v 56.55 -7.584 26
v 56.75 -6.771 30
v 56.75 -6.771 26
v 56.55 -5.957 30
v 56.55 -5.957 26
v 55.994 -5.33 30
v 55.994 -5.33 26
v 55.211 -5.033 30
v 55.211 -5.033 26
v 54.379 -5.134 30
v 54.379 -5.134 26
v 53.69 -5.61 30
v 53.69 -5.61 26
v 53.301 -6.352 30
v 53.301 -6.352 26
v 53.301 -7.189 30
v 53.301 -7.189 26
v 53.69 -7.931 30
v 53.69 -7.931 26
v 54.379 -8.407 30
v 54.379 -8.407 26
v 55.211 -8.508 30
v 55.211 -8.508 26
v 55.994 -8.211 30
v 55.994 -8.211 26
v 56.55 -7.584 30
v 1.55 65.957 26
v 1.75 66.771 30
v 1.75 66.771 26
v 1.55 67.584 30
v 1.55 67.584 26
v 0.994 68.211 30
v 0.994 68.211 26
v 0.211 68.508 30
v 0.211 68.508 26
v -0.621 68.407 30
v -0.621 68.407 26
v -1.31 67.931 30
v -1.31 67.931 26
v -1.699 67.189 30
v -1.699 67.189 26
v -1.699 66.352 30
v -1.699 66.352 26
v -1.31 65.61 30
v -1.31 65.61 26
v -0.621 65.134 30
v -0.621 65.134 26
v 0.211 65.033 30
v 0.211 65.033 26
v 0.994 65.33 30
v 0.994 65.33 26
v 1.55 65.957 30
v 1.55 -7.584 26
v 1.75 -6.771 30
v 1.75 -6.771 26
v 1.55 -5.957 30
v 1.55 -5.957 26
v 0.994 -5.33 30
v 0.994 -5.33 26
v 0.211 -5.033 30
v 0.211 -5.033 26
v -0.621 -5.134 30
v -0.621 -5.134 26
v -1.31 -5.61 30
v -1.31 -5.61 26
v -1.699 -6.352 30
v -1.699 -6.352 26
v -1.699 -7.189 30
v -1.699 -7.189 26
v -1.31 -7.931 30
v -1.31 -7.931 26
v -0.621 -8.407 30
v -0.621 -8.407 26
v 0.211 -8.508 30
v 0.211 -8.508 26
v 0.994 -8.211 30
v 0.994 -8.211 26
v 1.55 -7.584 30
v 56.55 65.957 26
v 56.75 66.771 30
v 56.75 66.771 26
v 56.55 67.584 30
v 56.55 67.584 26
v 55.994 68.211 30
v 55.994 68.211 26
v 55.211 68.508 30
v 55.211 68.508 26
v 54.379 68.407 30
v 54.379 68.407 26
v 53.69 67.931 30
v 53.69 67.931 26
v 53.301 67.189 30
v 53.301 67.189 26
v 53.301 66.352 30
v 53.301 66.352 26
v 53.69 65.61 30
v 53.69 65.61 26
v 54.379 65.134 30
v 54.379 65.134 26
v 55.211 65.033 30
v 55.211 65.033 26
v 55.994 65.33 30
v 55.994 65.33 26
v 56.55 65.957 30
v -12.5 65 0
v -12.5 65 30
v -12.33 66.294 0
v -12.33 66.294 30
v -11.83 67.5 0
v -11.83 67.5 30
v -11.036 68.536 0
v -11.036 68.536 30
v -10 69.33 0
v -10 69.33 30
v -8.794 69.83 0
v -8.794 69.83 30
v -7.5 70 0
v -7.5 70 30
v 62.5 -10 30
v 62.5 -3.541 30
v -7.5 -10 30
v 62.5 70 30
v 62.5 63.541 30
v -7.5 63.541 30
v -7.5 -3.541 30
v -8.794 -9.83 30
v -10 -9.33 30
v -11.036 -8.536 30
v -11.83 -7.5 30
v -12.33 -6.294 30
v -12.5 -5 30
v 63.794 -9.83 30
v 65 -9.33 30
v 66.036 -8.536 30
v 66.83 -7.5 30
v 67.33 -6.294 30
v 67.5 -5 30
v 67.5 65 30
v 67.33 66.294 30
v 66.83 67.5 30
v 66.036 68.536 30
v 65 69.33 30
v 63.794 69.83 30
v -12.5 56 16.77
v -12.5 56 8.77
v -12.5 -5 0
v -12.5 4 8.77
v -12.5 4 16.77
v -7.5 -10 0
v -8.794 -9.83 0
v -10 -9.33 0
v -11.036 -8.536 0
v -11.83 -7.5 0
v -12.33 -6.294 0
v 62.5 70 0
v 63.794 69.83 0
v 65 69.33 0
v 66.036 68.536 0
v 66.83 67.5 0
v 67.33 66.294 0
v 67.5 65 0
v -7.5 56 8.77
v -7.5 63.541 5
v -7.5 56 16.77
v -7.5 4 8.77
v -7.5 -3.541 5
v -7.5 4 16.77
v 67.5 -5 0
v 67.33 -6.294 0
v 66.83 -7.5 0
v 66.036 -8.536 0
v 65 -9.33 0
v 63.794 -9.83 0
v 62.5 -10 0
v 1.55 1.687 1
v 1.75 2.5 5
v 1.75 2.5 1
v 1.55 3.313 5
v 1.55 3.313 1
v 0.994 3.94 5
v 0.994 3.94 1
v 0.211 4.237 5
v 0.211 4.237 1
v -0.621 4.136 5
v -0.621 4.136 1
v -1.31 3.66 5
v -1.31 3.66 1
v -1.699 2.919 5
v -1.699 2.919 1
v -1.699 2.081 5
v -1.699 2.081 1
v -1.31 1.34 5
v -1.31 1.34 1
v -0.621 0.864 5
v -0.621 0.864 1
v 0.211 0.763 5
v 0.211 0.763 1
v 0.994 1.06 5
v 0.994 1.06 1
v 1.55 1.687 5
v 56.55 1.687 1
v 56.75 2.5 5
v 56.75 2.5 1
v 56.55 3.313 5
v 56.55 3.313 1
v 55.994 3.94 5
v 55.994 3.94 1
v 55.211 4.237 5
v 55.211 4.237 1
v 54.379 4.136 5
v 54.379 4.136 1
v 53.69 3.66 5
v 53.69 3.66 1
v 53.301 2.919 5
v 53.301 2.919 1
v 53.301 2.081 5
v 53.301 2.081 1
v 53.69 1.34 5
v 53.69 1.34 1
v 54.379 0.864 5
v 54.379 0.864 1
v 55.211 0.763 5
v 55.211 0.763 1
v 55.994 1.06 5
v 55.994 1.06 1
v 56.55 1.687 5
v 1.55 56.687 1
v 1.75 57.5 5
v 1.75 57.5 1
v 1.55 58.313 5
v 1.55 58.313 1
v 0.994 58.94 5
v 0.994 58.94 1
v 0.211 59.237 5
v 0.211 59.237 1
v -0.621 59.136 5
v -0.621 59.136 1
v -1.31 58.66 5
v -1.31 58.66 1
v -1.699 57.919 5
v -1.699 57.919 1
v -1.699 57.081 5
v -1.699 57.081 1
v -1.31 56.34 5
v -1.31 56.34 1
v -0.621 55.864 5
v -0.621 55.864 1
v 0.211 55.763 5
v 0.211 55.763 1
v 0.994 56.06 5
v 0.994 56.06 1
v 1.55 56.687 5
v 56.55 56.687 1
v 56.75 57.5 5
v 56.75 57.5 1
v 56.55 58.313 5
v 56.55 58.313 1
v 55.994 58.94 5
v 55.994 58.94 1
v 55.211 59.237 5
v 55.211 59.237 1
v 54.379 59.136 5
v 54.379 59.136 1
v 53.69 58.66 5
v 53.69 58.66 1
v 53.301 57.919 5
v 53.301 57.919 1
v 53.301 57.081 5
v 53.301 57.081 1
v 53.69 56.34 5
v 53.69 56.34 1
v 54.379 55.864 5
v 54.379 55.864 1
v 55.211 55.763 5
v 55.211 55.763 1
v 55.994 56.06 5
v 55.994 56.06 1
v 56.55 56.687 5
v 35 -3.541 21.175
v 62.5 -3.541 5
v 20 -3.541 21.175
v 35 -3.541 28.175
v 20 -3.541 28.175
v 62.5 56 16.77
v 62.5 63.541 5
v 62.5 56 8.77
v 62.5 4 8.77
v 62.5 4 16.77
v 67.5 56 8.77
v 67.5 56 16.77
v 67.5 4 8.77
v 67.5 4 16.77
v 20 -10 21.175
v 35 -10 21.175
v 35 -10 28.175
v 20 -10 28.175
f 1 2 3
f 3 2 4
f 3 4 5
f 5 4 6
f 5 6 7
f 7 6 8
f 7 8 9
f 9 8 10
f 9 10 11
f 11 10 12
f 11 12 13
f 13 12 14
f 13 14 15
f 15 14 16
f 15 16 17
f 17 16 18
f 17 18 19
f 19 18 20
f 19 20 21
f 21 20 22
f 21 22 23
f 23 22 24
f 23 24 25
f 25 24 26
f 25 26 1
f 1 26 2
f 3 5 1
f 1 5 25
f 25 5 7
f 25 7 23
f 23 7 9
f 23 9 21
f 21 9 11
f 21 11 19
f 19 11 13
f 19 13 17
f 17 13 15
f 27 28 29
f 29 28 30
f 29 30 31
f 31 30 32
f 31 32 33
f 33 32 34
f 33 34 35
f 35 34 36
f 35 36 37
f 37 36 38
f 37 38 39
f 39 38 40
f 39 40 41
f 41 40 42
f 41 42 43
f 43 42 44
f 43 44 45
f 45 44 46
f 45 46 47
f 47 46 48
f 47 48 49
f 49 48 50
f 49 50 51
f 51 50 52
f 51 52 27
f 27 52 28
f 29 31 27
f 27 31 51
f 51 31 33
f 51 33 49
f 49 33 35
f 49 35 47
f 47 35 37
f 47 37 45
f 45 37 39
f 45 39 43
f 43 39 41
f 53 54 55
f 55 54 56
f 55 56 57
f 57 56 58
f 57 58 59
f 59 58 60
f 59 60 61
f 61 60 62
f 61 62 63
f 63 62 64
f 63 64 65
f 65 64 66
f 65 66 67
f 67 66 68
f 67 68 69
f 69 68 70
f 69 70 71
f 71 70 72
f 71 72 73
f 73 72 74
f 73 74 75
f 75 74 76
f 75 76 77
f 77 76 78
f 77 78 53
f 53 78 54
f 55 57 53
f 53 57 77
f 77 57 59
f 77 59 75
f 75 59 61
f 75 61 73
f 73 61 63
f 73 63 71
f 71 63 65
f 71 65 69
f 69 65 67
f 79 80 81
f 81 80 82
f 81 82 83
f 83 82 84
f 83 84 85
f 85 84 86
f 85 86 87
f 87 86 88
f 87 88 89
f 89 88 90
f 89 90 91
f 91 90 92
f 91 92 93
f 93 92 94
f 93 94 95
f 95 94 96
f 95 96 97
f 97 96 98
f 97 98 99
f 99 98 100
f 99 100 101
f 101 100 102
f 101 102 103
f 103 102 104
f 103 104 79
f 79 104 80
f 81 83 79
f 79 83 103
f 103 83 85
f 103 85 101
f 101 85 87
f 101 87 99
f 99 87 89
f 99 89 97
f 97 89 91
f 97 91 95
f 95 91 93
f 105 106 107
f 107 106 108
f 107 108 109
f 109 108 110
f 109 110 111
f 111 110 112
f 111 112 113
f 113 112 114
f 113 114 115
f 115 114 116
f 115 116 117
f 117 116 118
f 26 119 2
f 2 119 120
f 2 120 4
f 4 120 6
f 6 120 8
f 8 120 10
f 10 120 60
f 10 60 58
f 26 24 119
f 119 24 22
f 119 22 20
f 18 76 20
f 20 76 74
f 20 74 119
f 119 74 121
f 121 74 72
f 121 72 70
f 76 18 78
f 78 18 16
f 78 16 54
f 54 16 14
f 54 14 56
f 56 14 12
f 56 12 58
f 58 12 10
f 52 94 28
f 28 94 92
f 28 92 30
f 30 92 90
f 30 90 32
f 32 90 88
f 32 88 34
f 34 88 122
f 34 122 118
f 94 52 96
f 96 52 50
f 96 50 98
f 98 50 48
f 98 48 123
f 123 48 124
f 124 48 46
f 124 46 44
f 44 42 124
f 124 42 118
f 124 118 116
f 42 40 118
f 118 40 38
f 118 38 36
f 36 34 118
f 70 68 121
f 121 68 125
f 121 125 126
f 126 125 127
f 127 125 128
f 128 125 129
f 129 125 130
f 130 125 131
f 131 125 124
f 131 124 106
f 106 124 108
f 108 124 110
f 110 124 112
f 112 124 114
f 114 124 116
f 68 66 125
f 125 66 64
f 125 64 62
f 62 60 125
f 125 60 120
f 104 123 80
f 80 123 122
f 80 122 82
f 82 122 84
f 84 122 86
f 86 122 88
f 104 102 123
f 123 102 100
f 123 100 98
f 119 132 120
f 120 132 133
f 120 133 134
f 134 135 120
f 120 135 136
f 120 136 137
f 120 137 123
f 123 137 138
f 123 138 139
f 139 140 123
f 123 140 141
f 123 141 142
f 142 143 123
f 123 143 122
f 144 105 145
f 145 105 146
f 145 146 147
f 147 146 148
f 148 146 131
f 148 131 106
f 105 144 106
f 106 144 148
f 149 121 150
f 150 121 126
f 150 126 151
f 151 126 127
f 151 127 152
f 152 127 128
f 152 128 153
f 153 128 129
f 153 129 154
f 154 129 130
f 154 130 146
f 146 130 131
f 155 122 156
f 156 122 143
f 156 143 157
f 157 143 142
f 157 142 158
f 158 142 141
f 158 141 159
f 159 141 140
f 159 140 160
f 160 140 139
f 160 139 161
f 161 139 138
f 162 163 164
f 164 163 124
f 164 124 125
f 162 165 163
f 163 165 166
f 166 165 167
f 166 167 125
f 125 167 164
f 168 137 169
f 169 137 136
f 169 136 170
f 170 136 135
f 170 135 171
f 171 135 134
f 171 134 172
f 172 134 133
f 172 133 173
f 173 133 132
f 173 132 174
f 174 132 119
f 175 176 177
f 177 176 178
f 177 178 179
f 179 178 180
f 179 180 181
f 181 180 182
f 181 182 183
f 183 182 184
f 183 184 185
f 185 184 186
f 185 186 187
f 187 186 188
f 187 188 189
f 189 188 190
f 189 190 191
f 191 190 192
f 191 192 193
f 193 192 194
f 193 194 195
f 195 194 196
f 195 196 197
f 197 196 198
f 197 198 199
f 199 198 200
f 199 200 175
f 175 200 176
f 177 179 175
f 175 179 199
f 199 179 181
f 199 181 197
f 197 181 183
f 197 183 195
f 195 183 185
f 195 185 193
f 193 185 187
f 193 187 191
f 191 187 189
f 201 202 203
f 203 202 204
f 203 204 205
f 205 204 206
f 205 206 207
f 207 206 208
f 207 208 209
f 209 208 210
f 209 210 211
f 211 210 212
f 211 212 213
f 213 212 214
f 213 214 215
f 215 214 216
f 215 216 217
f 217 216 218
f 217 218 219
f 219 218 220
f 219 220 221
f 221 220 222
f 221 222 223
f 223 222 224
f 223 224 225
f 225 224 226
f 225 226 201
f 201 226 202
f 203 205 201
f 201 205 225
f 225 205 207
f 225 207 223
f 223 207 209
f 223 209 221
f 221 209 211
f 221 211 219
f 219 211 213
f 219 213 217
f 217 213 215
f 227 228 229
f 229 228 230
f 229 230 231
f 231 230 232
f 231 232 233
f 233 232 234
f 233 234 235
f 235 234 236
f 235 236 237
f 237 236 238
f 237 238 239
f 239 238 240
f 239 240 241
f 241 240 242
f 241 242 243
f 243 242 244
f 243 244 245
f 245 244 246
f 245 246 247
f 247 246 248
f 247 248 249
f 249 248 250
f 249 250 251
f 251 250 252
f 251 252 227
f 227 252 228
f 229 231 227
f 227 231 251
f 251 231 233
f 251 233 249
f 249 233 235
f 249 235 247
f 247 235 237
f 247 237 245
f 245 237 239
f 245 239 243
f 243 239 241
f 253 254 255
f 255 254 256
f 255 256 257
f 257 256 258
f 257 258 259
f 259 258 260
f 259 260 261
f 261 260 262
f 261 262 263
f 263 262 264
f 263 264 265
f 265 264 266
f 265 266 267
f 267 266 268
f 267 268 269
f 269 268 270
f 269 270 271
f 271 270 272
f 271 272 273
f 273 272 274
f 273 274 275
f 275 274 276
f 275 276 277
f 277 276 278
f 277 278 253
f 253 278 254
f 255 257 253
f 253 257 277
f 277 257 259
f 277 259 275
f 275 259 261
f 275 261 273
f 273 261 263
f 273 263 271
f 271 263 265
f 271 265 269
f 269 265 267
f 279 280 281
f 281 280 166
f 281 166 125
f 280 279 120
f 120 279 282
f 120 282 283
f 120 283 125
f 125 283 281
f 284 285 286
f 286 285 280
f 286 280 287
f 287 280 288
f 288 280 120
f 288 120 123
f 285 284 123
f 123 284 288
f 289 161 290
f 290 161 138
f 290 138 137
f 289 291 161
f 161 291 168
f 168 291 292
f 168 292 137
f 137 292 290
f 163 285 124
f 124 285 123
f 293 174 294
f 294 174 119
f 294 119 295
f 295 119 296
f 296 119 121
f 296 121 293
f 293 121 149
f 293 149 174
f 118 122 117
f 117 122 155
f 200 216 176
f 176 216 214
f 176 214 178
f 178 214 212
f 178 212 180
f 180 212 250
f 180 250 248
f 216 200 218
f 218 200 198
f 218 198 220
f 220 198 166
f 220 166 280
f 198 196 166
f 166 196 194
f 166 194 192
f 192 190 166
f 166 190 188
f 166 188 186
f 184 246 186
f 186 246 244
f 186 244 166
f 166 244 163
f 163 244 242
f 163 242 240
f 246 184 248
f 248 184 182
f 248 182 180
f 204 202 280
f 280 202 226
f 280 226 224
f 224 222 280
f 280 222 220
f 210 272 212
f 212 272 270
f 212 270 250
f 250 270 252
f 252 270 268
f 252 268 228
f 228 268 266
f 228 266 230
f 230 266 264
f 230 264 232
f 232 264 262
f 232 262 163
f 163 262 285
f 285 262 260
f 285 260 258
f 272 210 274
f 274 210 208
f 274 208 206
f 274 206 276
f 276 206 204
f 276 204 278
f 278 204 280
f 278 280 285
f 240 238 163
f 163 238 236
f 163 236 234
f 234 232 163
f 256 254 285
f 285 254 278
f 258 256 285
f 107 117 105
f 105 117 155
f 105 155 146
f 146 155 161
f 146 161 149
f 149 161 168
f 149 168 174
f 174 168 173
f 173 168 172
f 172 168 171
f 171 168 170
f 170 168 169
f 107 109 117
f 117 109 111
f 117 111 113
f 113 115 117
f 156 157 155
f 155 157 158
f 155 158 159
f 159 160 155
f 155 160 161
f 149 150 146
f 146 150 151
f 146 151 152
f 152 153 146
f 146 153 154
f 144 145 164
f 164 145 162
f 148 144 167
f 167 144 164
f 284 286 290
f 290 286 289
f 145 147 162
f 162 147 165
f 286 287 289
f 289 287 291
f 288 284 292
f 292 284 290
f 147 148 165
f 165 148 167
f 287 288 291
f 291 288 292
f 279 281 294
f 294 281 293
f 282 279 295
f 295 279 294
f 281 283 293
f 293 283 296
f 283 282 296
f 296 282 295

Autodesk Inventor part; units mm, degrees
ref_plane "YZ Plane" through (0, 0, 0) normal (1, 0, 0) x (0, 1, 0)
ref_plane "XZ Plane" through (0, 0, 0) normal (0, 1, 0) x (-1, 0, 0)
ref_plane "XY Plane" through (0, 0, 0) normal (0, 0, 1) x (1, 0, 0)
sketch "Эскиз1" plane through (0, 0, 0) normal (0, 0, 1) x (1, 0, 0)
  circle A0 centre (0, 2.5) radius 1.1
  circle A1 centre (55, 2.5) radius 1.1
  circle A2 centre (0, 57.5) radius 1.1
  circle A3 centre (55, 57.5) radius 1.1
  line L0 (15.5, 60) -> (0, 60)
  line L1 (-2.5, 57.5) -> (-2.5, 2.5)
  line L2 (55, 60) -> (39.5, 60)
  line L3 (57.5, 2.5) -> (57.5, 57.5)
  line L4 (-2.5, 2.5) -> (-2.5, 0)
  line L5 (0, 60) -> (-2.5, 60)
  line L6 (-2.5, 60) -> (-2.5, 57.5)
  line L7 (39.5, 60) -> (15.5, 60)
  line L8 (57.5, 2.5) -> (57.5, 0)
  line L9 (57.5, 0) -> (-2.5, 0)
  line L10 (57.5, 57.5) -> (57.5, 60)
  line L11 (57.5, 60) -> (55, 60)
  line L12 (-7.5, 63.5411) -> (62.5, 63.5411)
  line L13 (62.5, 63.5411) -> (62.5, -3.5411)
  line L14 (62.5, -3.5411) -> (-7.5, -3.5411)
  line L15 (-7.5, -3.5411) -> (-7.5, 63.5411)
  line L16 (-7.5, 63.5411) -> (62.5, -3.5411) construction
  line L17 (62.5, 63.5411) -> (-7.5, -3.5411) construction
  point P0 (0, 0)
  point P1 (27.5, 30)
  dimension "d0" = 70
extrude "Выдавливание1" add sketch "Эскиз1" along normal blind 5 contours A0 | A1 | A2 | A3 | L7 L2 L11 L10 L3 L8 L9 L4 L1 L6 L5 L0 | L12 L13 L14 L15
sketch "Эскиз2" plane through (0, 0, 0) normal (0, 0, -1) x (-1, 0, 0)
  line L0 (7.5, 63.5411) -> (7.5, -3.5411) projected
  line L1 (-62.5, -3.5411) -> (-62.5, 63.5411) projected
  line L2 (-62.5, 63.5411) -> (7.5, 63.5411) projected
  line L3 (7.5, -3.5411) -> (-62.5, -3.5411) projected
  line L4 (12.5, 70) -> (-67.5, 70)
  line L5 (-67.5, 70) -> (-67.5, -10)
  line L6 (-67.5, -10) -> (12.5, -10)
  line L7 (12.5, -10) -> (12.5, 70)
  line L8 (12.5, 70) -> (-67.5, -10) construction
  line L9 (-67.5, 70) -> (12.5, -10) construction
  point P0 (0, 0)
  point P1 (-27.5, 30)
  dimension "d3" = 80
  dimension "d4" = 80
extrude "Выдавливание2" add sketch "Эскиз2" against normal blind 30
sketch "Эскиз3" plane through (0, 0, 5) normal (0, 0, 1) x (1, 0, 0)
  circle A0 centre (55, 2.5) radius 1.75
  circle A1 centre (55, 57.5) radius 1.75
  circle A2 centre (0, 57.5) radius 1.75
  circle A3 centre (0, 2.5) radius 1.75
  point P0 (0, 0)
  dimension "d7" = 3.5
  dimension "d8" = 3.5
  dimension "d9" = 3.5
  dimension "d10" = 3.5
extrude "Выдавливание3" cut sketch "Эскиз3" against normal blind 4
fillet "Сопряжение1" radius 5 4 edges at (67.5, -10, 15) (67.5, 70, 15) (-12.5, -10, 15) (-12.5, 70, 15)
sketch "Эскиз5" plane through (0, 0, 30) normal (0, 0, 1) x (1, 0, 0)
  circle A0 centre (0, 57.5) radius 1.75 projected
  line L0 (0, 57.5) -> (0, 63.5411)
  line L1 (62.5, 63.5411) -> (-7.5, 63.5411) projected
  line L2 (-7.5, 70) -> (62.5, 70) projected
  line L3 (0, 70) -> (0, 63.5411)
  circle A1 centre (55, 57.5) radius 1.75 projected
  line L4 (55, 57.5) -> (55, 63.5411)
  line L5 (55, 63.5411) -> (55, 70)
  circle A2 centre (55, 66.7706) radius 1.75
  circle A3 centre (0, 66.7706) radius 1.75
  circle A4 centre (55, 2.5) radius 1.75 projected
  line L6 (55, 2.5) -> (55, -3.5411)
  line L7 (62.5, -3.5411) -> (-7.5, -3.5411) projected
  line L8 (55, -3.5411) -> (55, -10)
  line L9 (62.5, -10) -> (-7.5, -10) projected
  circle A5 centre (0, 2.5) radius 1.75 projected
  line L10 (0, 2.5) -> (0, -3.5411)
  line L11 (0, -3.5411) -> (0, -10)
  circle A6 centre (55, -6.7706) radius 1.75
  circle A7 centre (0, -6.7706) radius 1.75
  point P0 (0, 0)
  dimension "d14" = 3.5
  dimension "d15" = 3.5
  dimension "d16" = 3.5
  dimension "d17" = 3.5
extrude "Выдавливание4" cut sketch "Эскиз5" against normal blind 4 contours A3 L3 | L3 A3 | A2 L5 | L5 A2 | A6 L8 | L8 A6 | A7 L11 | L11 A7
sketch "Эскиз6" plane through (0, 0, 30) normal (0, 0, 1) x (1, 0, 0)
  line L0 (62.5, 70) -> (-7.5, 70) projected
  line L1 (-12.5, 65) -> (-12.5, -5) projected
  arc A0 (-7.5, 70) -> (-12.5, 65) centre (-7.5, 65) ccw projected
  arc A1 (67.5, 65) -> (62.5, 70) centre (62.5, 65) ccw projected
  line L2 (67.5, -5) -> (67.5, 65) projected
  arc A2 (62.5, -10) -> (67.5, -5) centre (62.5, -5) ccw projected
  line L3 (-7.5, -10) -> (62.5, -10) projected
  arc A3 (-12.5, -5) -> (-7.5, -10) centre (-7.5, -5) ccw projected
  circle A4 centre (0, 66.7706) radius 1.75 projected
  circle A5 centre (55, 66.7706) radius 1.75 projected
  circle A6 centre (55, -6.7706) radius 1.75 projected
  circle A7 centre (0, -6.7706) radius 1.75 projected
  line L4 (62.5, -3.5411) -> (-7.5, -3.5411) projected
  line L5 (-7.5, -3.5411) -> (-7.5, 63.5411) projected
  line L6 (-7.5, 63.5411) -> (62.5, 63.5411) projected
  line L7 (62.5, 63.5411) -> (62.5, -3.5411) projected
  point P0 (0, 0)
sketch "Эскиз7" plane through (67.5, -5, 0) normal (1, 0, 0) x (0, 0, -1)
  line L0 (-30, -5) -> (0, -5)
  line L1 (-30, 0) -> (-30, 70)
  line L2 (0, 75) -> (-30, 75)
  line L3 (0, 70) -> (0, 0)
  line L4 (-30, 35) -> (0, 35)
  line L5 (-12.99, 13.983) -> (-12.99, 13.543)
  line L6 (-12.55, 13.543) -> (-12.55, 13.983)
  line L7 (-12.99, 13.763) -> (-12.55, 13.763)
  line L8 (-13.44, 12.493) -> (-12.1, 12.493)
  line L9 (-16.77, 9) -> (-8.77, 9)
  line L10 (-8.77, 9) -> (-8.77, 61)
  line L11 (-8.77, 61) -> (-16.77, 61)
  line L12 (-16.77, 61) -> (-16.77, 9)
  line L13 (-12.77, 13.763) -> (-12.77, 10.2135)
  point P0 (0, 5)
  dimension "d20" = 26
  dimension "d21" = 26
  dimension "d22" = 8
  dimension "d23" = 4
extrude "Выдавливание5" cut sketch "Эскиз7" against normal through all
sketch "Эскиз8" plane through (-7.5, -10, 0) normal (0, -1, 0) x (1, 0, 0)
  line L0 (32, 26.125) -> (38, 26.125)
  line L1 (34.72, 23.225) -> (32.7, 23.225)
  line L2 (30.9, 24.9) -> (30.9, 25.1)
  line L3 (39.1, 25.1) -> (39.1, 24.9)
  line L4 (30.9, 25.1) -> (30.9, 26.125)
  line L5 (30.9, 26.125) -> (39.1, 26.125)
  line L6 (39.1, 26.125) -> (39.1, 23.225)
  line L7 (39.1, 23.225) -> (30.9, 23.225)
  line L8 (30.9, 23.225) -> (30.9, 25.1)
  line L9 (42.5, 20.675) -> (27.5, 20.675)
  line L10 (27.5, 20.675) -> (27.5, 28.675)
  line L11 (27.5, 28.675) -> (42.5, 28.675)
  line L12 (42.5, 28.675) -> (42.5, 20.675)
  line L13 (42.5, 20.675) -> (27.5, 28.675) construction
  line L14 (27.5, 20.675) -> (42.5, 28.675) construction
  line L15 (42.5, 21.175) -> (27.5, 21.175)
  line L16 (27.5, 21.175) -> (27.5, 28.175)
  line L17 (27.5, 28.175) -> (42.5, 28.175)
  line L18 (42.5, 28.175) -> (42.5, 21.175)
  line L19 (42.5, 21.175) -> (27.5, 28.175) construction
  line L20 (27.5, 21.175) -> (42.5, 28.175) construction
  point P0 (7.5, 0)
  point P1 (35, 24.675)
  dimension "d26" = 15
  dimension "d27" = 8
  dimension "d28" = 15
  dimension "d29" = 7
extrude "Выдавливание6" cut sketch "Эскиз8" against normal blind 10 contours L0 L5 L6 L3 L7 L1 L8 L2 L4 | L15 L10 L17 L12
properties part number "Case_Base"
